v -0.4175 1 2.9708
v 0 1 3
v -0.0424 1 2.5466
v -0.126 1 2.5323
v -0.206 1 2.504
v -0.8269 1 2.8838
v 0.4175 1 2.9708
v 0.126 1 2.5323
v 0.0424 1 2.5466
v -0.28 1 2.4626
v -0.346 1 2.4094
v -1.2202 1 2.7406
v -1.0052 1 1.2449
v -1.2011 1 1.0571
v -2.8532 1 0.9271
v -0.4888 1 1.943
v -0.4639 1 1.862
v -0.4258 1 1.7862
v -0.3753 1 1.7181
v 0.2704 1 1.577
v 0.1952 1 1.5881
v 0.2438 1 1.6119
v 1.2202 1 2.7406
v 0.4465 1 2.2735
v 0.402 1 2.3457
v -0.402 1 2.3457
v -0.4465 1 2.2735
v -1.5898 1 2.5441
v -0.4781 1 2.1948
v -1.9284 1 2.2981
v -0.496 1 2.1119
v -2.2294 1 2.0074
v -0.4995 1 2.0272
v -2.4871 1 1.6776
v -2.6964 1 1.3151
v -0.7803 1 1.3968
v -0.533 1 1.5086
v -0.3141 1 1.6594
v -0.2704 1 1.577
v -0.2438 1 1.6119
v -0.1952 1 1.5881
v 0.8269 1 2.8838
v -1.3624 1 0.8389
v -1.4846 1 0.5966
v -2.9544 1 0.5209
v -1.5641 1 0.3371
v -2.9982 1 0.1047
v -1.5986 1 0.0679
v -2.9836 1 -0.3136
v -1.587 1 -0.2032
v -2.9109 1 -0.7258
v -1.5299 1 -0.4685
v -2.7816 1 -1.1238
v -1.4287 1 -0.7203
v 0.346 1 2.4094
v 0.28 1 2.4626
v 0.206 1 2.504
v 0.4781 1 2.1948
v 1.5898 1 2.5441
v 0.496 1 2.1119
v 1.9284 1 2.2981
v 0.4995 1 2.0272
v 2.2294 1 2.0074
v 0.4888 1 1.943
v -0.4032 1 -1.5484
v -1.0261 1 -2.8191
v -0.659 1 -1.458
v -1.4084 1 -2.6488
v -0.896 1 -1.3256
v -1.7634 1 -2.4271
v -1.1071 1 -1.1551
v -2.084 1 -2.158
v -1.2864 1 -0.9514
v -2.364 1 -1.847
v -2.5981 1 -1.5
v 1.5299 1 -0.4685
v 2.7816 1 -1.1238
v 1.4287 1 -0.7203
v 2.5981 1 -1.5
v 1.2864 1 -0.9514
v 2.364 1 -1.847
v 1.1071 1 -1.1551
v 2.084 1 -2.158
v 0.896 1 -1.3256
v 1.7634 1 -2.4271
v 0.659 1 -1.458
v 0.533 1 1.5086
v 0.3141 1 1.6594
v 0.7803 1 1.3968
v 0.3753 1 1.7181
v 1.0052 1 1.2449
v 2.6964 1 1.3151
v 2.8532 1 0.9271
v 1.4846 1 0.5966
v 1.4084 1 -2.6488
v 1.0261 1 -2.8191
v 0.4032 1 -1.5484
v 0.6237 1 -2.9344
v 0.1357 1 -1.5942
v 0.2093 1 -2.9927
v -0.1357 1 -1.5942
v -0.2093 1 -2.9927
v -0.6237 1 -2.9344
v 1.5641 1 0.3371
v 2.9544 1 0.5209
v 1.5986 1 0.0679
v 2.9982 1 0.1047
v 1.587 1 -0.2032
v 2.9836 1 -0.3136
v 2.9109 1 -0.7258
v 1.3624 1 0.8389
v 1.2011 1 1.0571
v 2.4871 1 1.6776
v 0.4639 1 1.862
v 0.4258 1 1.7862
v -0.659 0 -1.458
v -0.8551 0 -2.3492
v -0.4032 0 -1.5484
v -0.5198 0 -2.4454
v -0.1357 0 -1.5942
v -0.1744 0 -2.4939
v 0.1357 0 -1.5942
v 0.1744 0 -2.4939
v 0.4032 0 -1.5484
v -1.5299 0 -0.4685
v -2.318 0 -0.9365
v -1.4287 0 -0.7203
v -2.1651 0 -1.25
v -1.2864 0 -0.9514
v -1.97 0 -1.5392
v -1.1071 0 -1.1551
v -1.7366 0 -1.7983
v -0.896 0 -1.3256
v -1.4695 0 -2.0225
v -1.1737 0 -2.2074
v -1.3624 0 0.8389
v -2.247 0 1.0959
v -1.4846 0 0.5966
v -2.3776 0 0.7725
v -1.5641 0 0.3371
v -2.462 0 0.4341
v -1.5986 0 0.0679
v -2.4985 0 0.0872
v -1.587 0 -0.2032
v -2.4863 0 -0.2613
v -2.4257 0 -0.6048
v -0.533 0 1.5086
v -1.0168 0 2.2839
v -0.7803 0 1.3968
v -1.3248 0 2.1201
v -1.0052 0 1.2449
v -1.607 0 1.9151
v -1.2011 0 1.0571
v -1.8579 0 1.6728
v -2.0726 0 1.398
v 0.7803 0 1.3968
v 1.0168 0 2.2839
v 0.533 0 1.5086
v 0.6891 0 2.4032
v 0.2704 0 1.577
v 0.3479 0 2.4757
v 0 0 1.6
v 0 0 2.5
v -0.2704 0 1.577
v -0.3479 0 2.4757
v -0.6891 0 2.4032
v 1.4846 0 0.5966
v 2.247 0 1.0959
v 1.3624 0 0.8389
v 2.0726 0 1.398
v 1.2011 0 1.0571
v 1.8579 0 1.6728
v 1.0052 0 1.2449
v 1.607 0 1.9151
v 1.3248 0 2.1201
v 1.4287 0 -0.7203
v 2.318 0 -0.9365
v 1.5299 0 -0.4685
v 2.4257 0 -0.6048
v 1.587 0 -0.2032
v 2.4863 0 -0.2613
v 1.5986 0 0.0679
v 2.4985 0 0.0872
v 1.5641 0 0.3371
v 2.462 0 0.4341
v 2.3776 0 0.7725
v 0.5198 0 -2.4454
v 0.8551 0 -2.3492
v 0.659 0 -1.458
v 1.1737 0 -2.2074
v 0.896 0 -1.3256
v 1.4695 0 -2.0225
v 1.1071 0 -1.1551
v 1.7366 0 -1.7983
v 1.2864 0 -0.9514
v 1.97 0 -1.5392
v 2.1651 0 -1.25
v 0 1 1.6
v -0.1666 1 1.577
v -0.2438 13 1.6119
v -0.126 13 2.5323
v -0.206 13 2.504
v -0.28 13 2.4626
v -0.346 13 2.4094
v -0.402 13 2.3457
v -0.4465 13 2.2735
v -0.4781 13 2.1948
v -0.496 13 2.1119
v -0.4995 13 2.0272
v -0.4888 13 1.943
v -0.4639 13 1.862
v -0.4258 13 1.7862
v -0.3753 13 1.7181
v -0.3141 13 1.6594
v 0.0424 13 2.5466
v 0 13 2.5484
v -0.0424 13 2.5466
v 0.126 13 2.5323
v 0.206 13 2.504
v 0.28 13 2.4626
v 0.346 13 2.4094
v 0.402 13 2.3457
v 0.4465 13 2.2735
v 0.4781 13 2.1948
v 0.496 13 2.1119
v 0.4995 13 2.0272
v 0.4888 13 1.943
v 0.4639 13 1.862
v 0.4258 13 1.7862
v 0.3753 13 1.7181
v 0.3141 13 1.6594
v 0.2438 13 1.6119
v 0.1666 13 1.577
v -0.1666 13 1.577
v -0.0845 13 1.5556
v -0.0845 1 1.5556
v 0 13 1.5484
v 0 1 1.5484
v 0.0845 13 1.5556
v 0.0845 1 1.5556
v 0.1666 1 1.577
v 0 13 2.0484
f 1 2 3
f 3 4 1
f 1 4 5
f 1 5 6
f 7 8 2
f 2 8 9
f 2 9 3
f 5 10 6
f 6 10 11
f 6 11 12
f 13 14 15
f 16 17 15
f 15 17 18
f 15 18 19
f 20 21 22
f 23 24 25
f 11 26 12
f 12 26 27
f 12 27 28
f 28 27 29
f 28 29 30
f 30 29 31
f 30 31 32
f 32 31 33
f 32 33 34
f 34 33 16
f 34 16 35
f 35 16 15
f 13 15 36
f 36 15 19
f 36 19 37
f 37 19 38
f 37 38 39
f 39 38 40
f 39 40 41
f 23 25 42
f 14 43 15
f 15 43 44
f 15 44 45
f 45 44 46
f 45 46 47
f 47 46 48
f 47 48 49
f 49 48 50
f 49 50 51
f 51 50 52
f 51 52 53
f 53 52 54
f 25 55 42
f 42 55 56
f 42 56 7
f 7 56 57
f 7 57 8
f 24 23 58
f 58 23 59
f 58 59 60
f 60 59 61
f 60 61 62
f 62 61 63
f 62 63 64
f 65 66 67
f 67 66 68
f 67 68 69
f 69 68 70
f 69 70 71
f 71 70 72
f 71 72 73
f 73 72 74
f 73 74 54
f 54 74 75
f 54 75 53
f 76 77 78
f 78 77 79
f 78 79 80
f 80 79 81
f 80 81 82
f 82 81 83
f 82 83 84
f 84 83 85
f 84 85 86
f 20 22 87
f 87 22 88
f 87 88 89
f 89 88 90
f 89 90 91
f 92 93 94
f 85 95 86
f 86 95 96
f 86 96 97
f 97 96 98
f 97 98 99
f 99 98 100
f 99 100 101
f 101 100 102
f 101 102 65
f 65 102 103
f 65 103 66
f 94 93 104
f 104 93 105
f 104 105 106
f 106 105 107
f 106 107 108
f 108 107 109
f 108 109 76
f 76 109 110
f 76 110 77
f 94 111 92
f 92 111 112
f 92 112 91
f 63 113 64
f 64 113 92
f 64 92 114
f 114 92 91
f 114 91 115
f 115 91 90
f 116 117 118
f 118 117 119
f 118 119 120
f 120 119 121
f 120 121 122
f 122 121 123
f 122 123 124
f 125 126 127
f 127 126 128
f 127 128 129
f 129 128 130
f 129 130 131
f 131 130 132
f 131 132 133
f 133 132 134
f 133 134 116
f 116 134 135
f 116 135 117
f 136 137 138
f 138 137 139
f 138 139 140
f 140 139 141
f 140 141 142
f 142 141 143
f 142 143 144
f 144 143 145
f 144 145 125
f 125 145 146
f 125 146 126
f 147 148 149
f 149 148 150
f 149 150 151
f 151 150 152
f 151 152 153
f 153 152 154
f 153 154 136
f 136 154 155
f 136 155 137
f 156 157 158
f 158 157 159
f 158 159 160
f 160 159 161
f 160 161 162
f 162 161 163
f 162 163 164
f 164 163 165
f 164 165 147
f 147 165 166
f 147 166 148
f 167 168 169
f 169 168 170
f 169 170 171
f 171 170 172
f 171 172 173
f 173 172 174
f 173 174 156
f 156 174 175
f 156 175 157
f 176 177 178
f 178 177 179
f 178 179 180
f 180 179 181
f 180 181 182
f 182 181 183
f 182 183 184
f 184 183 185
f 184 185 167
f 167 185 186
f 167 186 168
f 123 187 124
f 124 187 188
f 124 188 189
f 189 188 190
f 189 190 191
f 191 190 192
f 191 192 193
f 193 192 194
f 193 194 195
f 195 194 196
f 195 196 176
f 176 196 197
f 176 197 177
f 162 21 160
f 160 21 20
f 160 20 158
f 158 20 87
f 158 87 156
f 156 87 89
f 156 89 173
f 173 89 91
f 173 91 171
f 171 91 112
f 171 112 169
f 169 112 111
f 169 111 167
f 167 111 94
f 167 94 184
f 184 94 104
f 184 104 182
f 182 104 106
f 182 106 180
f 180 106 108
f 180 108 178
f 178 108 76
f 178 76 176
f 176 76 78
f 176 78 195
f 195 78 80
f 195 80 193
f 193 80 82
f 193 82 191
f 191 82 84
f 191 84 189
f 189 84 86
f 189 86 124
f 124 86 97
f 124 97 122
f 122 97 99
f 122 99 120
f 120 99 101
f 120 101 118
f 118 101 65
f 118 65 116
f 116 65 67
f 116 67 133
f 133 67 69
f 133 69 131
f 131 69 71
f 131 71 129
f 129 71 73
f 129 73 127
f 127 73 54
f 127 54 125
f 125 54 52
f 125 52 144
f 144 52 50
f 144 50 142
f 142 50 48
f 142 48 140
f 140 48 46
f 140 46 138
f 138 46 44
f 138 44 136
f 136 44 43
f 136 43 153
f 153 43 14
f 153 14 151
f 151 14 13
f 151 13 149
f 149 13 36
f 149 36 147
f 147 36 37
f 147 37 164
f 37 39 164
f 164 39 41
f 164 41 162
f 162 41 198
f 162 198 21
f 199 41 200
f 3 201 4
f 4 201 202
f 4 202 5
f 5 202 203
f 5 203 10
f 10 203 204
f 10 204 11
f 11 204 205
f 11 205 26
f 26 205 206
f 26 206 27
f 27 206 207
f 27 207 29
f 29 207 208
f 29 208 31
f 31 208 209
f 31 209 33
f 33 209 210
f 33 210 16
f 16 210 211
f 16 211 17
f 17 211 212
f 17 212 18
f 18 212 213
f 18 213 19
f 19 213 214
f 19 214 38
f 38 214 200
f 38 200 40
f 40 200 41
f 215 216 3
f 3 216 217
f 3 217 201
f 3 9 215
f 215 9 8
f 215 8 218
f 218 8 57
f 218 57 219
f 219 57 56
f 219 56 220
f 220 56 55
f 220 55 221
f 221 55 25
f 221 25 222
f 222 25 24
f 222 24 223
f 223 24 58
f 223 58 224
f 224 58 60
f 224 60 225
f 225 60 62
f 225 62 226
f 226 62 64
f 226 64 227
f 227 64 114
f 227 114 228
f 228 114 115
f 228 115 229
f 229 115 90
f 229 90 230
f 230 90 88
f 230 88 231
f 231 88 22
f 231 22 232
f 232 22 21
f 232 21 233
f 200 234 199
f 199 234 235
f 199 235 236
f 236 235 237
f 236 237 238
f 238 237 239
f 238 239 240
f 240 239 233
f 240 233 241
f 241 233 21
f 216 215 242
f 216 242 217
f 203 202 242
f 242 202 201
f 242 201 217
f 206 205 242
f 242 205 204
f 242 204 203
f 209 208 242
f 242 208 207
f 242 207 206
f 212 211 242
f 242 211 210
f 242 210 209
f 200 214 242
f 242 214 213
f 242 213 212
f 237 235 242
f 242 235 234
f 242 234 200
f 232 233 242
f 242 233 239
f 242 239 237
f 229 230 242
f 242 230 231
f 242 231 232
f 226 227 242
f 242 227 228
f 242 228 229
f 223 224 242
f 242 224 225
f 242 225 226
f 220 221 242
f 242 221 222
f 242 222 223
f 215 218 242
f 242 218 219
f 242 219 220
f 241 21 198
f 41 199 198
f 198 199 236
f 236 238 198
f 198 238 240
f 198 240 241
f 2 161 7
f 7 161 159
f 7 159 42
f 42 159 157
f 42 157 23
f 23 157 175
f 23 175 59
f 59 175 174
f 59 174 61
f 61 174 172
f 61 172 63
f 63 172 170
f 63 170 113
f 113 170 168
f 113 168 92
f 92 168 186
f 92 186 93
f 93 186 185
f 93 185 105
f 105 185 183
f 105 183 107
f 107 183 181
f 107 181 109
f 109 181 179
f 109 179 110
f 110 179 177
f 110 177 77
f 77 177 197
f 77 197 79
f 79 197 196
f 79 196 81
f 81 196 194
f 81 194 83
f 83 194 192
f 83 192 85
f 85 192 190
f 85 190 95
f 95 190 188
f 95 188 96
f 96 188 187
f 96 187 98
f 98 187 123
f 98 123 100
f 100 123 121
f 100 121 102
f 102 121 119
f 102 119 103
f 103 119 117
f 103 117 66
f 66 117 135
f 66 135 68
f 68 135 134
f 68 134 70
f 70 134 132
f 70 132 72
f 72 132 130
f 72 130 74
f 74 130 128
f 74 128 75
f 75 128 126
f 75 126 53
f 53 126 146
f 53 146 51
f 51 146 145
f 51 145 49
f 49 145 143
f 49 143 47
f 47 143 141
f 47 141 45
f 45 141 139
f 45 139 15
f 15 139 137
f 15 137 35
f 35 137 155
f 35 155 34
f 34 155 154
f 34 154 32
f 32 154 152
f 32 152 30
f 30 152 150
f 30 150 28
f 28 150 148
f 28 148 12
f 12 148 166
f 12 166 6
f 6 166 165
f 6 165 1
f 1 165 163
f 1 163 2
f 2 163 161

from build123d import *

# Parameters (mm, degrees)
SKETCH1_R           = 3
BOSS_EXTRUDE1_DEPTH = 1
SKETCH2_R           = 1.6
CUT_EXTRUDE1_DEPTH  = 1
SKETCH3_R           = 0.5
BOSS_EXTRUDE2_DEPTH = 12
CHAMFER1_SIZE       = 1
CHAMFER1_SIZE_2     = 0.5


with BuildPart() as part:
    # Sketch1 → Boss-Extrude1 (new body)
    with BuildSketch(Plane(origin=(0, 0, 0), x_dir=(1, 0, 0), z_dir=(0, 1, 0))):
        with Locations(Location((0, 0, 0), (0, 0, 270))):
            Circle(SKETCH1_R)
    extrude(amount=BOSS_EXTRUDE1_DEPTH)

    # Sketch2 → Cut-Extrude1 (cut)
    with BuildSketch(Plane(origin=(0, 1, 0), x_dir=(1, 0, 0), z_dir=(0, 1, 0))):
        with Locations(Location((0, 0, 0), (0, 0, 270))):
            Circle(SKETCH2_R)
    extrude(amount=-CUT_EXTRUDE1_DEPTH, mode=Mode.SUBTRACT)

    # Sketch3 → Boss-Extrude2 (add)
    with BuildSketch(Plane(origin=(0, 1, 0), x_dir=(1, 0, 0), z_dir=(0, 1, 0))):
        with Locations(Location((0, -2.048388822, 0), (0, 0, 112.975296156))):
            Circle(SKETCH3_R)
    extrude(amount=BOSS_EXTRUDE2_DEPTH)

    # Chamfer1
    # the kernel refuses this chamfer: 1, 0.5 mm, written as the material it takes off along each edge
    with BuildSketch(Plane(origin=(0, 0, 0), x_dir=(0, 0, 1), z_dir=(-1, 0, 0))) as chamfer1_piece_1:
        Polygon((3, CHAMFER1_SIZE), (3 - CHAMFER1_SIZE_2, 0), (3, 0), align=None)
    revolve(axis=Axis((0, 0, 0), (0, 1, 0)), mode=Mode.SUBTRACT)


solid = part.part
